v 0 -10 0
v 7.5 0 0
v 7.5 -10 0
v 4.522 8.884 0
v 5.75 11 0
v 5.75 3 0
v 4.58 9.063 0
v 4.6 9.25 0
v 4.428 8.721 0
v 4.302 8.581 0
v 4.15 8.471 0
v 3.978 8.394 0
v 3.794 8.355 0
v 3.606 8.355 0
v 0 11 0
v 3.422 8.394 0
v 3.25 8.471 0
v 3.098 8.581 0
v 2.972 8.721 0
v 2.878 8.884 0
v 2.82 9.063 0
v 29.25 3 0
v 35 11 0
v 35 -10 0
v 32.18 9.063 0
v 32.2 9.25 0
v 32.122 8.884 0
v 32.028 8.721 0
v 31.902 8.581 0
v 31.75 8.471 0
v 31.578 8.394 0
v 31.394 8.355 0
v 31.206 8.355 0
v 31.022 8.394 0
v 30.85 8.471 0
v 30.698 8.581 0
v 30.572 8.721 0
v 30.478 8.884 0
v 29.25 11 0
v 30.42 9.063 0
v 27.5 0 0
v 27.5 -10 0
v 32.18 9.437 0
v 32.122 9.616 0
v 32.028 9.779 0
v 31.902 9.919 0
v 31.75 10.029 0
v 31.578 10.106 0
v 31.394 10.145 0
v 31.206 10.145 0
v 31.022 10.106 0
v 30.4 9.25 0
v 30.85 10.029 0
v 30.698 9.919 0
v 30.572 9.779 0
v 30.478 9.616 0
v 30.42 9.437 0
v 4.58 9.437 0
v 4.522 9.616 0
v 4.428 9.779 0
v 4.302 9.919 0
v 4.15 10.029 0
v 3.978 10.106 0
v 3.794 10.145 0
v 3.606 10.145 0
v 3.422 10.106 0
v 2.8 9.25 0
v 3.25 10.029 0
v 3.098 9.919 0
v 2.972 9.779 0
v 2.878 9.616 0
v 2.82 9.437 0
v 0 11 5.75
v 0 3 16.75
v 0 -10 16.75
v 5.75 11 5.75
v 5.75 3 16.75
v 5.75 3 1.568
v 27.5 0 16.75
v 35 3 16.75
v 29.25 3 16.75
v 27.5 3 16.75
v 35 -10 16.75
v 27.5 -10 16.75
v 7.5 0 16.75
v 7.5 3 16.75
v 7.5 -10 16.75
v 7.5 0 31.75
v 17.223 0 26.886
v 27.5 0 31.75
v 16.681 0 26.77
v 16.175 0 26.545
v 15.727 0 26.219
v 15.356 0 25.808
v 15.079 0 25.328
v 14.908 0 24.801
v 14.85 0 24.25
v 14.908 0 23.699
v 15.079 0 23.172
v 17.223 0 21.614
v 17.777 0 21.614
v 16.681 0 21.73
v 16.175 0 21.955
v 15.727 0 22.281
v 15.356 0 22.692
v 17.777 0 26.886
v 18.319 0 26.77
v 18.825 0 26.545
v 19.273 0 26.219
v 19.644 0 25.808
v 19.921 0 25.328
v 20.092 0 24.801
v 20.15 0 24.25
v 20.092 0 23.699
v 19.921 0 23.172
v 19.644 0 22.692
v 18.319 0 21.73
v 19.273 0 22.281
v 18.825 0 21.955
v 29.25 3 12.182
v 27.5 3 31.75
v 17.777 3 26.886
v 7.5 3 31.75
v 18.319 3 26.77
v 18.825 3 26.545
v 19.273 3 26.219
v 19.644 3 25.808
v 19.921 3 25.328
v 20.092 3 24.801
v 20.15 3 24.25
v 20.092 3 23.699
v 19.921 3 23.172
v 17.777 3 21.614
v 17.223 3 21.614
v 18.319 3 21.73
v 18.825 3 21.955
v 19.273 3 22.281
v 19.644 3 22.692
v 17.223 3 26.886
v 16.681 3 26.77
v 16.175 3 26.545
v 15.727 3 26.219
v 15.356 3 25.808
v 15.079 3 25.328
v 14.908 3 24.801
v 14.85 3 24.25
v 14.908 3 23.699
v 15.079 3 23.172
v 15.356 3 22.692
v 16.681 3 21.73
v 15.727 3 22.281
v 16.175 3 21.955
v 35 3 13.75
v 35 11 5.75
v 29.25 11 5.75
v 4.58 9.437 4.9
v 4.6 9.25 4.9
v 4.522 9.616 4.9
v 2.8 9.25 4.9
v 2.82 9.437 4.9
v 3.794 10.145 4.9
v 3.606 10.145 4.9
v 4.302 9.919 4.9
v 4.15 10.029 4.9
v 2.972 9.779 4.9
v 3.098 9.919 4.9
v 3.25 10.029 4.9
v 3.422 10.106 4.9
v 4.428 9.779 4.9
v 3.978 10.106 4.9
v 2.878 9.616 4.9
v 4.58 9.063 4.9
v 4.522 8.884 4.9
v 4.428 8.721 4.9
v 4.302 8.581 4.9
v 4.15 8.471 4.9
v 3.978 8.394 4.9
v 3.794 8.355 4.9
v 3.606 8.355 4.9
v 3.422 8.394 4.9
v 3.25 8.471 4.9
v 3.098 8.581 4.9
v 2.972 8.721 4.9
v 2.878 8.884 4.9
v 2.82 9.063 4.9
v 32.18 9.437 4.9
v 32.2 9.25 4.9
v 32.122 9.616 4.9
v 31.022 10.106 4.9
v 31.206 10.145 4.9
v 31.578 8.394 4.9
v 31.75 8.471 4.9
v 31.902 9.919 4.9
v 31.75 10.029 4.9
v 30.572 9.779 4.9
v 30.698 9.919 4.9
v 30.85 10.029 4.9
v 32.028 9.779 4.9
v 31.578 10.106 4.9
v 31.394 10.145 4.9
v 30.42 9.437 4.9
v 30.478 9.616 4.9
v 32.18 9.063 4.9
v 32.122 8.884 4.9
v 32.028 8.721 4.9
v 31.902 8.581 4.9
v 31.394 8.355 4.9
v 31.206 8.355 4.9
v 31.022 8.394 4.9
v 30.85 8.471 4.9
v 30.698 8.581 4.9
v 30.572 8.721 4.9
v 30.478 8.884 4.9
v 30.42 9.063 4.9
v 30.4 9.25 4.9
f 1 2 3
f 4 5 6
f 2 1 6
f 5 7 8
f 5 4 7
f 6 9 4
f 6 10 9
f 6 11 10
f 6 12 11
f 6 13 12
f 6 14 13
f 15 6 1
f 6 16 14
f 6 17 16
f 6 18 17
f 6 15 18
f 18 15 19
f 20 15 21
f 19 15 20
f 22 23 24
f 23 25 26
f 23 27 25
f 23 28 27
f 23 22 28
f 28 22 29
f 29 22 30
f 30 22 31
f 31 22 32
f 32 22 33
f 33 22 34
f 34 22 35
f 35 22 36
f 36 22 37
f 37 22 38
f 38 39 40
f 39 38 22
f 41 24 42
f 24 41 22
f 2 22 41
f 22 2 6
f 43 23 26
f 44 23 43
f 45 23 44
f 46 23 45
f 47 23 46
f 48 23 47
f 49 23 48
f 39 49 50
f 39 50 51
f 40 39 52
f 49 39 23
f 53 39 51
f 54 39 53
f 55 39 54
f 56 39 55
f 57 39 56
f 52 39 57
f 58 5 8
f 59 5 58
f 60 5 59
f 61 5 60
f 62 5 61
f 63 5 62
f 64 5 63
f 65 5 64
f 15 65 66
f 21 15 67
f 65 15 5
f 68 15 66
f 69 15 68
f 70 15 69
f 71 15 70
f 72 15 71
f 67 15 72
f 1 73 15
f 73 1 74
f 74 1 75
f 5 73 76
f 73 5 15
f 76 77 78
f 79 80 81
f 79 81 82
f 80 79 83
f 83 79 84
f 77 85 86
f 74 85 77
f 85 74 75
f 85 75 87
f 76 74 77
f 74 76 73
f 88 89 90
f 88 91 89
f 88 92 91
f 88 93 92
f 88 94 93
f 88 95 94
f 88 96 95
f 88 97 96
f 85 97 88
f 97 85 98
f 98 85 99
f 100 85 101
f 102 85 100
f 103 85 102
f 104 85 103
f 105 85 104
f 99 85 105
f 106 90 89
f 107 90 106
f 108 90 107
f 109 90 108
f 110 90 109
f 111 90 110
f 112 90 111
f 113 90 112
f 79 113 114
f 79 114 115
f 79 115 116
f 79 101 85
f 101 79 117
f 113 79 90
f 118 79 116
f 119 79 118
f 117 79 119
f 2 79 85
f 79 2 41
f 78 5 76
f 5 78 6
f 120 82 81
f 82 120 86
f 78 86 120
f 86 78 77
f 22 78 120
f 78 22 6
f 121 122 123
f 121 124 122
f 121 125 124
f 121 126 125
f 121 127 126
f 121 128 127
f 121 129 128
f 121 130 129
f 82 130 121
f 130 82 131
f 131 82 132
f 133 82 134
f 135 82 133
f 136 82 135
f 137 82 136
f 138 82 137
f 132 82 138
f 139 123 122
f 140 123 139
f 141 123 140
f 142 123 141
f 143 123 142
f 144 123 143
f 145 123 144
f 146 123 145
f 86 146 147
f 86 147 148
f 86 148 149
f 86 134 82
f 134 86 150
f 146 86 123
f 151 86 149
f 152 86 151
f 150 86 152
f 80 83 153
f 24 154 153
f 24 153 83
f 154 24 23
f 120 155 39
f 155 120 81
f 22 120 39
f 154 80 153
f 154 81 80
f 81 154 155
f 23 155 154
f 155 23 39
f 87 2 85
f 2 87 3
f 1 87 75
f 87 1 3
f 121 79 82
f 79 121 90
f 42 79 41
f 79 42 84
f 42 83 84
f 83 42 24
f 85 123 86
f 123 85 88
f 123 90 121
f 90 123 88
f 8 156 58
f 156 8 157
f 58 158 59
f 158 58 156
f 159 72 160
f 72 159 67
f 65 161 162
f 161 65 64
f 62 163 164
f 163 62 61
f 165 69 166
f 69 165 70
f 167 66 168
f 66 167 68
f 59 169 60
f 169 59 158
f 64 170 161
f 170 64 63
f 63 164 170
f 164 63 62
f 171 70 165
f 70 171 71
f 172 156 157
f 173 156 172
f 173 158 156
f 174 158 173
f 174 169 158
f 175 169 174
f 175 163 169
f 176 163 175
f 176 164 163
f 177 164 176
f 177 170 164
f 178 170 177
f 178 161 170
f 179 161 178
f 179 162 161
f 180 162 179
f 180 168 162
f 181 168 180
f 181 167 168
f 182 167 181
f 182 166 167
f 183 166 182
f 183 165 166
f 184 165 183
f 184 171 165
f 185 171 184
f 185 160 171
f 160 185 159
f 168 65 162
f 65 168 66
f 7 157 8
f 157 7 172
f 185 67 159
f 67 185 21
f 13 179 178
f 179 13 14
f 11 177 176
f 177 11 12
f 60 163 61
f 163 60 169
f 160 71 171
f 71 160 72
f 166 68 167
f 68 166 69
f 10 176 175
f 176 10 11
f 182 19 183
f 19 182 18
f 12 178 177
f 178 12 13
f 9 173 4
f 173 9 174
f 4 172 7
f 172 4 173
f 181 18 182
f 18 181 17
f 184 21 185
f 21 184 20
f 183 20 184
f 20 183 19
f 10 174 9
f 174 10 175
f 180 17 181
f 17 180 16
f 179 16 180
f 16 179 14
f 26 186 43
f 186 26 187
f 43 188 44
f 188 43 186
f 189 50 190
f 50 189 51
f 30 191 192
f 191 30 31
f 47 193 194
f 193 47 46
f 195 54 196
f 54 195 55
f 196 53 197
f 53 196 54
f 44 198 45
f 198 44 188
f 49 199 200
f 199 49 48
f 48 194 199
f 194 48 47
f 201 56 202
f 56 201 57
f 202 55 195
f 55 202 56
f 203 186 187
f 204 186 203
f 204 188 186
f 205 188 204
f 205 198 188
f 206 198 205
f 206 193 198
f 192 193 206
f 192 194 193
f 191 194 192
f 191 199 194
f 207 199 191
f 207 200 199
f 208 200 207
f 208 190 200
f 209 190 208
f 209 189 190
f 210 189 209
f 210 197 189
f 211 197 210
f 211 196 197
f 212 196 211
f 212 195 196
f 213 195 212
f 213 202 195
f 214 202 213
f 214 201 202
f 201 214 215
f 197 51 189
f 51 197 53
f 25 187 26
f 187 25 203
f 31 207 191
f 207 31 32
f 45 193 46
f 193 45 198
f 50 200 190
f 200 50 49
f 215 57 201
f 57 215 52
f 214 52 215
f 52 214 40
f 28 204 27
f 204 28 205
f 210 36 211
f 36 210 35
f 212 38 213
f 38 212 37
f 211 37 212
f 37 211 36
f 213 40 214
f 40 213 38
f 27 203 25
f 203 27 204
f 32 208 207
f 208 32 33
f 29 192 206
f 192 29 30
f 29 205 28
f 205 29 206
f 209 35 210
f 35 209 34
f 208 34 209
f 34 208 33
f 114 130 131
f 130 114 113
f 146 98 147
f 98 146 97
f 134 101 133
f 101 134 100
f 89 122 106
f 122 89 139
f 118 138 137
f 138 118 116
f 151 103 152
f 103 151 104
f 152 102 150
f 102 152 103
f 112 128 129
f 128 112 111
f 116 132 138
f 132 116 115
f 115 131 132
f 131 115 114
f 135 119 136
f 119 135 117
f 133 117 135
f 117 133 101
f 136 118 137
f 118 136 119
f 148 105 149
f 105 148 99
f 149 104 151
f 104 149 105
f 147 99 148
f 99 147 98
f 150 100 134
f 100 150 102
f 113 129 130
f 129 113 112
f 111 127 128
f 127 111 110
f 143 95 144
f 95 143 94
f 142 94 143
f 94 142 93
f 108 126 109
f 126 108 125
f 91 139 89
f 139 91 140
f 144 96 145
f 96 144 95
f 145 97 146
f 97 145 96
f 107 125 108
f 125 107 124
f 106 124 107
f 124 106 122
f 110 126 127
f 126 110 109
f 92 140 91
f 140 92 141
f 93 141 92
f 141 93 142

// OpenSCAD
$fn = 30;

rotate([-90,0,0]) {
	//translate([0,-16.75+.1,0])
	//rotate([0,0,-90])
	//import("servo-mount.stl");

	difference() {
		union() {
			rotate([90,0,90])
			linear_extrude(height = 5.75, center = false, convexity = 0)
			polygon(points=[[0,0],[0,11],[-5.75,11],[-16.75,3],[-16.75,0]]);
			
			translate([0,-16.75,0])
			cube([35,16.75,3]);
			
			translate([29.25,0,0])
			rotate([90,0,90])
			linear_extrude(height = 5.75, center = false, convexity = 0)
			polygon(points=[[0,0],[0,11],[-5.75,11],[-16.75,3],[-16.75,0]]);
			
			translate([0,-16.75,-10])
			cube([7.5,16.75,11]);
			
			translate([27.5,-16.75,-10])
			cube([7.5,16.75,11]);
		
			translate([7.5,-16.75-15,0])
			cube([20,16.75+15,3]);
		}
	
		color("grey")
		translate([3.2 + 0.5,.1,9.25])
		rotate([90,0,0])
		cylinder(h = 5, d = 1.8);
		
		color("grey")
		translate([35 - 3.2 - 0.5,.1,9.25])
		rotate([90,0,0])
		cylinder(h = 5, d = 1.8);
	
		color("red")
		translate([35/2,-16.75-7.5,-1])
		cylinder(h = 5, d = 5.3);
	}
}
